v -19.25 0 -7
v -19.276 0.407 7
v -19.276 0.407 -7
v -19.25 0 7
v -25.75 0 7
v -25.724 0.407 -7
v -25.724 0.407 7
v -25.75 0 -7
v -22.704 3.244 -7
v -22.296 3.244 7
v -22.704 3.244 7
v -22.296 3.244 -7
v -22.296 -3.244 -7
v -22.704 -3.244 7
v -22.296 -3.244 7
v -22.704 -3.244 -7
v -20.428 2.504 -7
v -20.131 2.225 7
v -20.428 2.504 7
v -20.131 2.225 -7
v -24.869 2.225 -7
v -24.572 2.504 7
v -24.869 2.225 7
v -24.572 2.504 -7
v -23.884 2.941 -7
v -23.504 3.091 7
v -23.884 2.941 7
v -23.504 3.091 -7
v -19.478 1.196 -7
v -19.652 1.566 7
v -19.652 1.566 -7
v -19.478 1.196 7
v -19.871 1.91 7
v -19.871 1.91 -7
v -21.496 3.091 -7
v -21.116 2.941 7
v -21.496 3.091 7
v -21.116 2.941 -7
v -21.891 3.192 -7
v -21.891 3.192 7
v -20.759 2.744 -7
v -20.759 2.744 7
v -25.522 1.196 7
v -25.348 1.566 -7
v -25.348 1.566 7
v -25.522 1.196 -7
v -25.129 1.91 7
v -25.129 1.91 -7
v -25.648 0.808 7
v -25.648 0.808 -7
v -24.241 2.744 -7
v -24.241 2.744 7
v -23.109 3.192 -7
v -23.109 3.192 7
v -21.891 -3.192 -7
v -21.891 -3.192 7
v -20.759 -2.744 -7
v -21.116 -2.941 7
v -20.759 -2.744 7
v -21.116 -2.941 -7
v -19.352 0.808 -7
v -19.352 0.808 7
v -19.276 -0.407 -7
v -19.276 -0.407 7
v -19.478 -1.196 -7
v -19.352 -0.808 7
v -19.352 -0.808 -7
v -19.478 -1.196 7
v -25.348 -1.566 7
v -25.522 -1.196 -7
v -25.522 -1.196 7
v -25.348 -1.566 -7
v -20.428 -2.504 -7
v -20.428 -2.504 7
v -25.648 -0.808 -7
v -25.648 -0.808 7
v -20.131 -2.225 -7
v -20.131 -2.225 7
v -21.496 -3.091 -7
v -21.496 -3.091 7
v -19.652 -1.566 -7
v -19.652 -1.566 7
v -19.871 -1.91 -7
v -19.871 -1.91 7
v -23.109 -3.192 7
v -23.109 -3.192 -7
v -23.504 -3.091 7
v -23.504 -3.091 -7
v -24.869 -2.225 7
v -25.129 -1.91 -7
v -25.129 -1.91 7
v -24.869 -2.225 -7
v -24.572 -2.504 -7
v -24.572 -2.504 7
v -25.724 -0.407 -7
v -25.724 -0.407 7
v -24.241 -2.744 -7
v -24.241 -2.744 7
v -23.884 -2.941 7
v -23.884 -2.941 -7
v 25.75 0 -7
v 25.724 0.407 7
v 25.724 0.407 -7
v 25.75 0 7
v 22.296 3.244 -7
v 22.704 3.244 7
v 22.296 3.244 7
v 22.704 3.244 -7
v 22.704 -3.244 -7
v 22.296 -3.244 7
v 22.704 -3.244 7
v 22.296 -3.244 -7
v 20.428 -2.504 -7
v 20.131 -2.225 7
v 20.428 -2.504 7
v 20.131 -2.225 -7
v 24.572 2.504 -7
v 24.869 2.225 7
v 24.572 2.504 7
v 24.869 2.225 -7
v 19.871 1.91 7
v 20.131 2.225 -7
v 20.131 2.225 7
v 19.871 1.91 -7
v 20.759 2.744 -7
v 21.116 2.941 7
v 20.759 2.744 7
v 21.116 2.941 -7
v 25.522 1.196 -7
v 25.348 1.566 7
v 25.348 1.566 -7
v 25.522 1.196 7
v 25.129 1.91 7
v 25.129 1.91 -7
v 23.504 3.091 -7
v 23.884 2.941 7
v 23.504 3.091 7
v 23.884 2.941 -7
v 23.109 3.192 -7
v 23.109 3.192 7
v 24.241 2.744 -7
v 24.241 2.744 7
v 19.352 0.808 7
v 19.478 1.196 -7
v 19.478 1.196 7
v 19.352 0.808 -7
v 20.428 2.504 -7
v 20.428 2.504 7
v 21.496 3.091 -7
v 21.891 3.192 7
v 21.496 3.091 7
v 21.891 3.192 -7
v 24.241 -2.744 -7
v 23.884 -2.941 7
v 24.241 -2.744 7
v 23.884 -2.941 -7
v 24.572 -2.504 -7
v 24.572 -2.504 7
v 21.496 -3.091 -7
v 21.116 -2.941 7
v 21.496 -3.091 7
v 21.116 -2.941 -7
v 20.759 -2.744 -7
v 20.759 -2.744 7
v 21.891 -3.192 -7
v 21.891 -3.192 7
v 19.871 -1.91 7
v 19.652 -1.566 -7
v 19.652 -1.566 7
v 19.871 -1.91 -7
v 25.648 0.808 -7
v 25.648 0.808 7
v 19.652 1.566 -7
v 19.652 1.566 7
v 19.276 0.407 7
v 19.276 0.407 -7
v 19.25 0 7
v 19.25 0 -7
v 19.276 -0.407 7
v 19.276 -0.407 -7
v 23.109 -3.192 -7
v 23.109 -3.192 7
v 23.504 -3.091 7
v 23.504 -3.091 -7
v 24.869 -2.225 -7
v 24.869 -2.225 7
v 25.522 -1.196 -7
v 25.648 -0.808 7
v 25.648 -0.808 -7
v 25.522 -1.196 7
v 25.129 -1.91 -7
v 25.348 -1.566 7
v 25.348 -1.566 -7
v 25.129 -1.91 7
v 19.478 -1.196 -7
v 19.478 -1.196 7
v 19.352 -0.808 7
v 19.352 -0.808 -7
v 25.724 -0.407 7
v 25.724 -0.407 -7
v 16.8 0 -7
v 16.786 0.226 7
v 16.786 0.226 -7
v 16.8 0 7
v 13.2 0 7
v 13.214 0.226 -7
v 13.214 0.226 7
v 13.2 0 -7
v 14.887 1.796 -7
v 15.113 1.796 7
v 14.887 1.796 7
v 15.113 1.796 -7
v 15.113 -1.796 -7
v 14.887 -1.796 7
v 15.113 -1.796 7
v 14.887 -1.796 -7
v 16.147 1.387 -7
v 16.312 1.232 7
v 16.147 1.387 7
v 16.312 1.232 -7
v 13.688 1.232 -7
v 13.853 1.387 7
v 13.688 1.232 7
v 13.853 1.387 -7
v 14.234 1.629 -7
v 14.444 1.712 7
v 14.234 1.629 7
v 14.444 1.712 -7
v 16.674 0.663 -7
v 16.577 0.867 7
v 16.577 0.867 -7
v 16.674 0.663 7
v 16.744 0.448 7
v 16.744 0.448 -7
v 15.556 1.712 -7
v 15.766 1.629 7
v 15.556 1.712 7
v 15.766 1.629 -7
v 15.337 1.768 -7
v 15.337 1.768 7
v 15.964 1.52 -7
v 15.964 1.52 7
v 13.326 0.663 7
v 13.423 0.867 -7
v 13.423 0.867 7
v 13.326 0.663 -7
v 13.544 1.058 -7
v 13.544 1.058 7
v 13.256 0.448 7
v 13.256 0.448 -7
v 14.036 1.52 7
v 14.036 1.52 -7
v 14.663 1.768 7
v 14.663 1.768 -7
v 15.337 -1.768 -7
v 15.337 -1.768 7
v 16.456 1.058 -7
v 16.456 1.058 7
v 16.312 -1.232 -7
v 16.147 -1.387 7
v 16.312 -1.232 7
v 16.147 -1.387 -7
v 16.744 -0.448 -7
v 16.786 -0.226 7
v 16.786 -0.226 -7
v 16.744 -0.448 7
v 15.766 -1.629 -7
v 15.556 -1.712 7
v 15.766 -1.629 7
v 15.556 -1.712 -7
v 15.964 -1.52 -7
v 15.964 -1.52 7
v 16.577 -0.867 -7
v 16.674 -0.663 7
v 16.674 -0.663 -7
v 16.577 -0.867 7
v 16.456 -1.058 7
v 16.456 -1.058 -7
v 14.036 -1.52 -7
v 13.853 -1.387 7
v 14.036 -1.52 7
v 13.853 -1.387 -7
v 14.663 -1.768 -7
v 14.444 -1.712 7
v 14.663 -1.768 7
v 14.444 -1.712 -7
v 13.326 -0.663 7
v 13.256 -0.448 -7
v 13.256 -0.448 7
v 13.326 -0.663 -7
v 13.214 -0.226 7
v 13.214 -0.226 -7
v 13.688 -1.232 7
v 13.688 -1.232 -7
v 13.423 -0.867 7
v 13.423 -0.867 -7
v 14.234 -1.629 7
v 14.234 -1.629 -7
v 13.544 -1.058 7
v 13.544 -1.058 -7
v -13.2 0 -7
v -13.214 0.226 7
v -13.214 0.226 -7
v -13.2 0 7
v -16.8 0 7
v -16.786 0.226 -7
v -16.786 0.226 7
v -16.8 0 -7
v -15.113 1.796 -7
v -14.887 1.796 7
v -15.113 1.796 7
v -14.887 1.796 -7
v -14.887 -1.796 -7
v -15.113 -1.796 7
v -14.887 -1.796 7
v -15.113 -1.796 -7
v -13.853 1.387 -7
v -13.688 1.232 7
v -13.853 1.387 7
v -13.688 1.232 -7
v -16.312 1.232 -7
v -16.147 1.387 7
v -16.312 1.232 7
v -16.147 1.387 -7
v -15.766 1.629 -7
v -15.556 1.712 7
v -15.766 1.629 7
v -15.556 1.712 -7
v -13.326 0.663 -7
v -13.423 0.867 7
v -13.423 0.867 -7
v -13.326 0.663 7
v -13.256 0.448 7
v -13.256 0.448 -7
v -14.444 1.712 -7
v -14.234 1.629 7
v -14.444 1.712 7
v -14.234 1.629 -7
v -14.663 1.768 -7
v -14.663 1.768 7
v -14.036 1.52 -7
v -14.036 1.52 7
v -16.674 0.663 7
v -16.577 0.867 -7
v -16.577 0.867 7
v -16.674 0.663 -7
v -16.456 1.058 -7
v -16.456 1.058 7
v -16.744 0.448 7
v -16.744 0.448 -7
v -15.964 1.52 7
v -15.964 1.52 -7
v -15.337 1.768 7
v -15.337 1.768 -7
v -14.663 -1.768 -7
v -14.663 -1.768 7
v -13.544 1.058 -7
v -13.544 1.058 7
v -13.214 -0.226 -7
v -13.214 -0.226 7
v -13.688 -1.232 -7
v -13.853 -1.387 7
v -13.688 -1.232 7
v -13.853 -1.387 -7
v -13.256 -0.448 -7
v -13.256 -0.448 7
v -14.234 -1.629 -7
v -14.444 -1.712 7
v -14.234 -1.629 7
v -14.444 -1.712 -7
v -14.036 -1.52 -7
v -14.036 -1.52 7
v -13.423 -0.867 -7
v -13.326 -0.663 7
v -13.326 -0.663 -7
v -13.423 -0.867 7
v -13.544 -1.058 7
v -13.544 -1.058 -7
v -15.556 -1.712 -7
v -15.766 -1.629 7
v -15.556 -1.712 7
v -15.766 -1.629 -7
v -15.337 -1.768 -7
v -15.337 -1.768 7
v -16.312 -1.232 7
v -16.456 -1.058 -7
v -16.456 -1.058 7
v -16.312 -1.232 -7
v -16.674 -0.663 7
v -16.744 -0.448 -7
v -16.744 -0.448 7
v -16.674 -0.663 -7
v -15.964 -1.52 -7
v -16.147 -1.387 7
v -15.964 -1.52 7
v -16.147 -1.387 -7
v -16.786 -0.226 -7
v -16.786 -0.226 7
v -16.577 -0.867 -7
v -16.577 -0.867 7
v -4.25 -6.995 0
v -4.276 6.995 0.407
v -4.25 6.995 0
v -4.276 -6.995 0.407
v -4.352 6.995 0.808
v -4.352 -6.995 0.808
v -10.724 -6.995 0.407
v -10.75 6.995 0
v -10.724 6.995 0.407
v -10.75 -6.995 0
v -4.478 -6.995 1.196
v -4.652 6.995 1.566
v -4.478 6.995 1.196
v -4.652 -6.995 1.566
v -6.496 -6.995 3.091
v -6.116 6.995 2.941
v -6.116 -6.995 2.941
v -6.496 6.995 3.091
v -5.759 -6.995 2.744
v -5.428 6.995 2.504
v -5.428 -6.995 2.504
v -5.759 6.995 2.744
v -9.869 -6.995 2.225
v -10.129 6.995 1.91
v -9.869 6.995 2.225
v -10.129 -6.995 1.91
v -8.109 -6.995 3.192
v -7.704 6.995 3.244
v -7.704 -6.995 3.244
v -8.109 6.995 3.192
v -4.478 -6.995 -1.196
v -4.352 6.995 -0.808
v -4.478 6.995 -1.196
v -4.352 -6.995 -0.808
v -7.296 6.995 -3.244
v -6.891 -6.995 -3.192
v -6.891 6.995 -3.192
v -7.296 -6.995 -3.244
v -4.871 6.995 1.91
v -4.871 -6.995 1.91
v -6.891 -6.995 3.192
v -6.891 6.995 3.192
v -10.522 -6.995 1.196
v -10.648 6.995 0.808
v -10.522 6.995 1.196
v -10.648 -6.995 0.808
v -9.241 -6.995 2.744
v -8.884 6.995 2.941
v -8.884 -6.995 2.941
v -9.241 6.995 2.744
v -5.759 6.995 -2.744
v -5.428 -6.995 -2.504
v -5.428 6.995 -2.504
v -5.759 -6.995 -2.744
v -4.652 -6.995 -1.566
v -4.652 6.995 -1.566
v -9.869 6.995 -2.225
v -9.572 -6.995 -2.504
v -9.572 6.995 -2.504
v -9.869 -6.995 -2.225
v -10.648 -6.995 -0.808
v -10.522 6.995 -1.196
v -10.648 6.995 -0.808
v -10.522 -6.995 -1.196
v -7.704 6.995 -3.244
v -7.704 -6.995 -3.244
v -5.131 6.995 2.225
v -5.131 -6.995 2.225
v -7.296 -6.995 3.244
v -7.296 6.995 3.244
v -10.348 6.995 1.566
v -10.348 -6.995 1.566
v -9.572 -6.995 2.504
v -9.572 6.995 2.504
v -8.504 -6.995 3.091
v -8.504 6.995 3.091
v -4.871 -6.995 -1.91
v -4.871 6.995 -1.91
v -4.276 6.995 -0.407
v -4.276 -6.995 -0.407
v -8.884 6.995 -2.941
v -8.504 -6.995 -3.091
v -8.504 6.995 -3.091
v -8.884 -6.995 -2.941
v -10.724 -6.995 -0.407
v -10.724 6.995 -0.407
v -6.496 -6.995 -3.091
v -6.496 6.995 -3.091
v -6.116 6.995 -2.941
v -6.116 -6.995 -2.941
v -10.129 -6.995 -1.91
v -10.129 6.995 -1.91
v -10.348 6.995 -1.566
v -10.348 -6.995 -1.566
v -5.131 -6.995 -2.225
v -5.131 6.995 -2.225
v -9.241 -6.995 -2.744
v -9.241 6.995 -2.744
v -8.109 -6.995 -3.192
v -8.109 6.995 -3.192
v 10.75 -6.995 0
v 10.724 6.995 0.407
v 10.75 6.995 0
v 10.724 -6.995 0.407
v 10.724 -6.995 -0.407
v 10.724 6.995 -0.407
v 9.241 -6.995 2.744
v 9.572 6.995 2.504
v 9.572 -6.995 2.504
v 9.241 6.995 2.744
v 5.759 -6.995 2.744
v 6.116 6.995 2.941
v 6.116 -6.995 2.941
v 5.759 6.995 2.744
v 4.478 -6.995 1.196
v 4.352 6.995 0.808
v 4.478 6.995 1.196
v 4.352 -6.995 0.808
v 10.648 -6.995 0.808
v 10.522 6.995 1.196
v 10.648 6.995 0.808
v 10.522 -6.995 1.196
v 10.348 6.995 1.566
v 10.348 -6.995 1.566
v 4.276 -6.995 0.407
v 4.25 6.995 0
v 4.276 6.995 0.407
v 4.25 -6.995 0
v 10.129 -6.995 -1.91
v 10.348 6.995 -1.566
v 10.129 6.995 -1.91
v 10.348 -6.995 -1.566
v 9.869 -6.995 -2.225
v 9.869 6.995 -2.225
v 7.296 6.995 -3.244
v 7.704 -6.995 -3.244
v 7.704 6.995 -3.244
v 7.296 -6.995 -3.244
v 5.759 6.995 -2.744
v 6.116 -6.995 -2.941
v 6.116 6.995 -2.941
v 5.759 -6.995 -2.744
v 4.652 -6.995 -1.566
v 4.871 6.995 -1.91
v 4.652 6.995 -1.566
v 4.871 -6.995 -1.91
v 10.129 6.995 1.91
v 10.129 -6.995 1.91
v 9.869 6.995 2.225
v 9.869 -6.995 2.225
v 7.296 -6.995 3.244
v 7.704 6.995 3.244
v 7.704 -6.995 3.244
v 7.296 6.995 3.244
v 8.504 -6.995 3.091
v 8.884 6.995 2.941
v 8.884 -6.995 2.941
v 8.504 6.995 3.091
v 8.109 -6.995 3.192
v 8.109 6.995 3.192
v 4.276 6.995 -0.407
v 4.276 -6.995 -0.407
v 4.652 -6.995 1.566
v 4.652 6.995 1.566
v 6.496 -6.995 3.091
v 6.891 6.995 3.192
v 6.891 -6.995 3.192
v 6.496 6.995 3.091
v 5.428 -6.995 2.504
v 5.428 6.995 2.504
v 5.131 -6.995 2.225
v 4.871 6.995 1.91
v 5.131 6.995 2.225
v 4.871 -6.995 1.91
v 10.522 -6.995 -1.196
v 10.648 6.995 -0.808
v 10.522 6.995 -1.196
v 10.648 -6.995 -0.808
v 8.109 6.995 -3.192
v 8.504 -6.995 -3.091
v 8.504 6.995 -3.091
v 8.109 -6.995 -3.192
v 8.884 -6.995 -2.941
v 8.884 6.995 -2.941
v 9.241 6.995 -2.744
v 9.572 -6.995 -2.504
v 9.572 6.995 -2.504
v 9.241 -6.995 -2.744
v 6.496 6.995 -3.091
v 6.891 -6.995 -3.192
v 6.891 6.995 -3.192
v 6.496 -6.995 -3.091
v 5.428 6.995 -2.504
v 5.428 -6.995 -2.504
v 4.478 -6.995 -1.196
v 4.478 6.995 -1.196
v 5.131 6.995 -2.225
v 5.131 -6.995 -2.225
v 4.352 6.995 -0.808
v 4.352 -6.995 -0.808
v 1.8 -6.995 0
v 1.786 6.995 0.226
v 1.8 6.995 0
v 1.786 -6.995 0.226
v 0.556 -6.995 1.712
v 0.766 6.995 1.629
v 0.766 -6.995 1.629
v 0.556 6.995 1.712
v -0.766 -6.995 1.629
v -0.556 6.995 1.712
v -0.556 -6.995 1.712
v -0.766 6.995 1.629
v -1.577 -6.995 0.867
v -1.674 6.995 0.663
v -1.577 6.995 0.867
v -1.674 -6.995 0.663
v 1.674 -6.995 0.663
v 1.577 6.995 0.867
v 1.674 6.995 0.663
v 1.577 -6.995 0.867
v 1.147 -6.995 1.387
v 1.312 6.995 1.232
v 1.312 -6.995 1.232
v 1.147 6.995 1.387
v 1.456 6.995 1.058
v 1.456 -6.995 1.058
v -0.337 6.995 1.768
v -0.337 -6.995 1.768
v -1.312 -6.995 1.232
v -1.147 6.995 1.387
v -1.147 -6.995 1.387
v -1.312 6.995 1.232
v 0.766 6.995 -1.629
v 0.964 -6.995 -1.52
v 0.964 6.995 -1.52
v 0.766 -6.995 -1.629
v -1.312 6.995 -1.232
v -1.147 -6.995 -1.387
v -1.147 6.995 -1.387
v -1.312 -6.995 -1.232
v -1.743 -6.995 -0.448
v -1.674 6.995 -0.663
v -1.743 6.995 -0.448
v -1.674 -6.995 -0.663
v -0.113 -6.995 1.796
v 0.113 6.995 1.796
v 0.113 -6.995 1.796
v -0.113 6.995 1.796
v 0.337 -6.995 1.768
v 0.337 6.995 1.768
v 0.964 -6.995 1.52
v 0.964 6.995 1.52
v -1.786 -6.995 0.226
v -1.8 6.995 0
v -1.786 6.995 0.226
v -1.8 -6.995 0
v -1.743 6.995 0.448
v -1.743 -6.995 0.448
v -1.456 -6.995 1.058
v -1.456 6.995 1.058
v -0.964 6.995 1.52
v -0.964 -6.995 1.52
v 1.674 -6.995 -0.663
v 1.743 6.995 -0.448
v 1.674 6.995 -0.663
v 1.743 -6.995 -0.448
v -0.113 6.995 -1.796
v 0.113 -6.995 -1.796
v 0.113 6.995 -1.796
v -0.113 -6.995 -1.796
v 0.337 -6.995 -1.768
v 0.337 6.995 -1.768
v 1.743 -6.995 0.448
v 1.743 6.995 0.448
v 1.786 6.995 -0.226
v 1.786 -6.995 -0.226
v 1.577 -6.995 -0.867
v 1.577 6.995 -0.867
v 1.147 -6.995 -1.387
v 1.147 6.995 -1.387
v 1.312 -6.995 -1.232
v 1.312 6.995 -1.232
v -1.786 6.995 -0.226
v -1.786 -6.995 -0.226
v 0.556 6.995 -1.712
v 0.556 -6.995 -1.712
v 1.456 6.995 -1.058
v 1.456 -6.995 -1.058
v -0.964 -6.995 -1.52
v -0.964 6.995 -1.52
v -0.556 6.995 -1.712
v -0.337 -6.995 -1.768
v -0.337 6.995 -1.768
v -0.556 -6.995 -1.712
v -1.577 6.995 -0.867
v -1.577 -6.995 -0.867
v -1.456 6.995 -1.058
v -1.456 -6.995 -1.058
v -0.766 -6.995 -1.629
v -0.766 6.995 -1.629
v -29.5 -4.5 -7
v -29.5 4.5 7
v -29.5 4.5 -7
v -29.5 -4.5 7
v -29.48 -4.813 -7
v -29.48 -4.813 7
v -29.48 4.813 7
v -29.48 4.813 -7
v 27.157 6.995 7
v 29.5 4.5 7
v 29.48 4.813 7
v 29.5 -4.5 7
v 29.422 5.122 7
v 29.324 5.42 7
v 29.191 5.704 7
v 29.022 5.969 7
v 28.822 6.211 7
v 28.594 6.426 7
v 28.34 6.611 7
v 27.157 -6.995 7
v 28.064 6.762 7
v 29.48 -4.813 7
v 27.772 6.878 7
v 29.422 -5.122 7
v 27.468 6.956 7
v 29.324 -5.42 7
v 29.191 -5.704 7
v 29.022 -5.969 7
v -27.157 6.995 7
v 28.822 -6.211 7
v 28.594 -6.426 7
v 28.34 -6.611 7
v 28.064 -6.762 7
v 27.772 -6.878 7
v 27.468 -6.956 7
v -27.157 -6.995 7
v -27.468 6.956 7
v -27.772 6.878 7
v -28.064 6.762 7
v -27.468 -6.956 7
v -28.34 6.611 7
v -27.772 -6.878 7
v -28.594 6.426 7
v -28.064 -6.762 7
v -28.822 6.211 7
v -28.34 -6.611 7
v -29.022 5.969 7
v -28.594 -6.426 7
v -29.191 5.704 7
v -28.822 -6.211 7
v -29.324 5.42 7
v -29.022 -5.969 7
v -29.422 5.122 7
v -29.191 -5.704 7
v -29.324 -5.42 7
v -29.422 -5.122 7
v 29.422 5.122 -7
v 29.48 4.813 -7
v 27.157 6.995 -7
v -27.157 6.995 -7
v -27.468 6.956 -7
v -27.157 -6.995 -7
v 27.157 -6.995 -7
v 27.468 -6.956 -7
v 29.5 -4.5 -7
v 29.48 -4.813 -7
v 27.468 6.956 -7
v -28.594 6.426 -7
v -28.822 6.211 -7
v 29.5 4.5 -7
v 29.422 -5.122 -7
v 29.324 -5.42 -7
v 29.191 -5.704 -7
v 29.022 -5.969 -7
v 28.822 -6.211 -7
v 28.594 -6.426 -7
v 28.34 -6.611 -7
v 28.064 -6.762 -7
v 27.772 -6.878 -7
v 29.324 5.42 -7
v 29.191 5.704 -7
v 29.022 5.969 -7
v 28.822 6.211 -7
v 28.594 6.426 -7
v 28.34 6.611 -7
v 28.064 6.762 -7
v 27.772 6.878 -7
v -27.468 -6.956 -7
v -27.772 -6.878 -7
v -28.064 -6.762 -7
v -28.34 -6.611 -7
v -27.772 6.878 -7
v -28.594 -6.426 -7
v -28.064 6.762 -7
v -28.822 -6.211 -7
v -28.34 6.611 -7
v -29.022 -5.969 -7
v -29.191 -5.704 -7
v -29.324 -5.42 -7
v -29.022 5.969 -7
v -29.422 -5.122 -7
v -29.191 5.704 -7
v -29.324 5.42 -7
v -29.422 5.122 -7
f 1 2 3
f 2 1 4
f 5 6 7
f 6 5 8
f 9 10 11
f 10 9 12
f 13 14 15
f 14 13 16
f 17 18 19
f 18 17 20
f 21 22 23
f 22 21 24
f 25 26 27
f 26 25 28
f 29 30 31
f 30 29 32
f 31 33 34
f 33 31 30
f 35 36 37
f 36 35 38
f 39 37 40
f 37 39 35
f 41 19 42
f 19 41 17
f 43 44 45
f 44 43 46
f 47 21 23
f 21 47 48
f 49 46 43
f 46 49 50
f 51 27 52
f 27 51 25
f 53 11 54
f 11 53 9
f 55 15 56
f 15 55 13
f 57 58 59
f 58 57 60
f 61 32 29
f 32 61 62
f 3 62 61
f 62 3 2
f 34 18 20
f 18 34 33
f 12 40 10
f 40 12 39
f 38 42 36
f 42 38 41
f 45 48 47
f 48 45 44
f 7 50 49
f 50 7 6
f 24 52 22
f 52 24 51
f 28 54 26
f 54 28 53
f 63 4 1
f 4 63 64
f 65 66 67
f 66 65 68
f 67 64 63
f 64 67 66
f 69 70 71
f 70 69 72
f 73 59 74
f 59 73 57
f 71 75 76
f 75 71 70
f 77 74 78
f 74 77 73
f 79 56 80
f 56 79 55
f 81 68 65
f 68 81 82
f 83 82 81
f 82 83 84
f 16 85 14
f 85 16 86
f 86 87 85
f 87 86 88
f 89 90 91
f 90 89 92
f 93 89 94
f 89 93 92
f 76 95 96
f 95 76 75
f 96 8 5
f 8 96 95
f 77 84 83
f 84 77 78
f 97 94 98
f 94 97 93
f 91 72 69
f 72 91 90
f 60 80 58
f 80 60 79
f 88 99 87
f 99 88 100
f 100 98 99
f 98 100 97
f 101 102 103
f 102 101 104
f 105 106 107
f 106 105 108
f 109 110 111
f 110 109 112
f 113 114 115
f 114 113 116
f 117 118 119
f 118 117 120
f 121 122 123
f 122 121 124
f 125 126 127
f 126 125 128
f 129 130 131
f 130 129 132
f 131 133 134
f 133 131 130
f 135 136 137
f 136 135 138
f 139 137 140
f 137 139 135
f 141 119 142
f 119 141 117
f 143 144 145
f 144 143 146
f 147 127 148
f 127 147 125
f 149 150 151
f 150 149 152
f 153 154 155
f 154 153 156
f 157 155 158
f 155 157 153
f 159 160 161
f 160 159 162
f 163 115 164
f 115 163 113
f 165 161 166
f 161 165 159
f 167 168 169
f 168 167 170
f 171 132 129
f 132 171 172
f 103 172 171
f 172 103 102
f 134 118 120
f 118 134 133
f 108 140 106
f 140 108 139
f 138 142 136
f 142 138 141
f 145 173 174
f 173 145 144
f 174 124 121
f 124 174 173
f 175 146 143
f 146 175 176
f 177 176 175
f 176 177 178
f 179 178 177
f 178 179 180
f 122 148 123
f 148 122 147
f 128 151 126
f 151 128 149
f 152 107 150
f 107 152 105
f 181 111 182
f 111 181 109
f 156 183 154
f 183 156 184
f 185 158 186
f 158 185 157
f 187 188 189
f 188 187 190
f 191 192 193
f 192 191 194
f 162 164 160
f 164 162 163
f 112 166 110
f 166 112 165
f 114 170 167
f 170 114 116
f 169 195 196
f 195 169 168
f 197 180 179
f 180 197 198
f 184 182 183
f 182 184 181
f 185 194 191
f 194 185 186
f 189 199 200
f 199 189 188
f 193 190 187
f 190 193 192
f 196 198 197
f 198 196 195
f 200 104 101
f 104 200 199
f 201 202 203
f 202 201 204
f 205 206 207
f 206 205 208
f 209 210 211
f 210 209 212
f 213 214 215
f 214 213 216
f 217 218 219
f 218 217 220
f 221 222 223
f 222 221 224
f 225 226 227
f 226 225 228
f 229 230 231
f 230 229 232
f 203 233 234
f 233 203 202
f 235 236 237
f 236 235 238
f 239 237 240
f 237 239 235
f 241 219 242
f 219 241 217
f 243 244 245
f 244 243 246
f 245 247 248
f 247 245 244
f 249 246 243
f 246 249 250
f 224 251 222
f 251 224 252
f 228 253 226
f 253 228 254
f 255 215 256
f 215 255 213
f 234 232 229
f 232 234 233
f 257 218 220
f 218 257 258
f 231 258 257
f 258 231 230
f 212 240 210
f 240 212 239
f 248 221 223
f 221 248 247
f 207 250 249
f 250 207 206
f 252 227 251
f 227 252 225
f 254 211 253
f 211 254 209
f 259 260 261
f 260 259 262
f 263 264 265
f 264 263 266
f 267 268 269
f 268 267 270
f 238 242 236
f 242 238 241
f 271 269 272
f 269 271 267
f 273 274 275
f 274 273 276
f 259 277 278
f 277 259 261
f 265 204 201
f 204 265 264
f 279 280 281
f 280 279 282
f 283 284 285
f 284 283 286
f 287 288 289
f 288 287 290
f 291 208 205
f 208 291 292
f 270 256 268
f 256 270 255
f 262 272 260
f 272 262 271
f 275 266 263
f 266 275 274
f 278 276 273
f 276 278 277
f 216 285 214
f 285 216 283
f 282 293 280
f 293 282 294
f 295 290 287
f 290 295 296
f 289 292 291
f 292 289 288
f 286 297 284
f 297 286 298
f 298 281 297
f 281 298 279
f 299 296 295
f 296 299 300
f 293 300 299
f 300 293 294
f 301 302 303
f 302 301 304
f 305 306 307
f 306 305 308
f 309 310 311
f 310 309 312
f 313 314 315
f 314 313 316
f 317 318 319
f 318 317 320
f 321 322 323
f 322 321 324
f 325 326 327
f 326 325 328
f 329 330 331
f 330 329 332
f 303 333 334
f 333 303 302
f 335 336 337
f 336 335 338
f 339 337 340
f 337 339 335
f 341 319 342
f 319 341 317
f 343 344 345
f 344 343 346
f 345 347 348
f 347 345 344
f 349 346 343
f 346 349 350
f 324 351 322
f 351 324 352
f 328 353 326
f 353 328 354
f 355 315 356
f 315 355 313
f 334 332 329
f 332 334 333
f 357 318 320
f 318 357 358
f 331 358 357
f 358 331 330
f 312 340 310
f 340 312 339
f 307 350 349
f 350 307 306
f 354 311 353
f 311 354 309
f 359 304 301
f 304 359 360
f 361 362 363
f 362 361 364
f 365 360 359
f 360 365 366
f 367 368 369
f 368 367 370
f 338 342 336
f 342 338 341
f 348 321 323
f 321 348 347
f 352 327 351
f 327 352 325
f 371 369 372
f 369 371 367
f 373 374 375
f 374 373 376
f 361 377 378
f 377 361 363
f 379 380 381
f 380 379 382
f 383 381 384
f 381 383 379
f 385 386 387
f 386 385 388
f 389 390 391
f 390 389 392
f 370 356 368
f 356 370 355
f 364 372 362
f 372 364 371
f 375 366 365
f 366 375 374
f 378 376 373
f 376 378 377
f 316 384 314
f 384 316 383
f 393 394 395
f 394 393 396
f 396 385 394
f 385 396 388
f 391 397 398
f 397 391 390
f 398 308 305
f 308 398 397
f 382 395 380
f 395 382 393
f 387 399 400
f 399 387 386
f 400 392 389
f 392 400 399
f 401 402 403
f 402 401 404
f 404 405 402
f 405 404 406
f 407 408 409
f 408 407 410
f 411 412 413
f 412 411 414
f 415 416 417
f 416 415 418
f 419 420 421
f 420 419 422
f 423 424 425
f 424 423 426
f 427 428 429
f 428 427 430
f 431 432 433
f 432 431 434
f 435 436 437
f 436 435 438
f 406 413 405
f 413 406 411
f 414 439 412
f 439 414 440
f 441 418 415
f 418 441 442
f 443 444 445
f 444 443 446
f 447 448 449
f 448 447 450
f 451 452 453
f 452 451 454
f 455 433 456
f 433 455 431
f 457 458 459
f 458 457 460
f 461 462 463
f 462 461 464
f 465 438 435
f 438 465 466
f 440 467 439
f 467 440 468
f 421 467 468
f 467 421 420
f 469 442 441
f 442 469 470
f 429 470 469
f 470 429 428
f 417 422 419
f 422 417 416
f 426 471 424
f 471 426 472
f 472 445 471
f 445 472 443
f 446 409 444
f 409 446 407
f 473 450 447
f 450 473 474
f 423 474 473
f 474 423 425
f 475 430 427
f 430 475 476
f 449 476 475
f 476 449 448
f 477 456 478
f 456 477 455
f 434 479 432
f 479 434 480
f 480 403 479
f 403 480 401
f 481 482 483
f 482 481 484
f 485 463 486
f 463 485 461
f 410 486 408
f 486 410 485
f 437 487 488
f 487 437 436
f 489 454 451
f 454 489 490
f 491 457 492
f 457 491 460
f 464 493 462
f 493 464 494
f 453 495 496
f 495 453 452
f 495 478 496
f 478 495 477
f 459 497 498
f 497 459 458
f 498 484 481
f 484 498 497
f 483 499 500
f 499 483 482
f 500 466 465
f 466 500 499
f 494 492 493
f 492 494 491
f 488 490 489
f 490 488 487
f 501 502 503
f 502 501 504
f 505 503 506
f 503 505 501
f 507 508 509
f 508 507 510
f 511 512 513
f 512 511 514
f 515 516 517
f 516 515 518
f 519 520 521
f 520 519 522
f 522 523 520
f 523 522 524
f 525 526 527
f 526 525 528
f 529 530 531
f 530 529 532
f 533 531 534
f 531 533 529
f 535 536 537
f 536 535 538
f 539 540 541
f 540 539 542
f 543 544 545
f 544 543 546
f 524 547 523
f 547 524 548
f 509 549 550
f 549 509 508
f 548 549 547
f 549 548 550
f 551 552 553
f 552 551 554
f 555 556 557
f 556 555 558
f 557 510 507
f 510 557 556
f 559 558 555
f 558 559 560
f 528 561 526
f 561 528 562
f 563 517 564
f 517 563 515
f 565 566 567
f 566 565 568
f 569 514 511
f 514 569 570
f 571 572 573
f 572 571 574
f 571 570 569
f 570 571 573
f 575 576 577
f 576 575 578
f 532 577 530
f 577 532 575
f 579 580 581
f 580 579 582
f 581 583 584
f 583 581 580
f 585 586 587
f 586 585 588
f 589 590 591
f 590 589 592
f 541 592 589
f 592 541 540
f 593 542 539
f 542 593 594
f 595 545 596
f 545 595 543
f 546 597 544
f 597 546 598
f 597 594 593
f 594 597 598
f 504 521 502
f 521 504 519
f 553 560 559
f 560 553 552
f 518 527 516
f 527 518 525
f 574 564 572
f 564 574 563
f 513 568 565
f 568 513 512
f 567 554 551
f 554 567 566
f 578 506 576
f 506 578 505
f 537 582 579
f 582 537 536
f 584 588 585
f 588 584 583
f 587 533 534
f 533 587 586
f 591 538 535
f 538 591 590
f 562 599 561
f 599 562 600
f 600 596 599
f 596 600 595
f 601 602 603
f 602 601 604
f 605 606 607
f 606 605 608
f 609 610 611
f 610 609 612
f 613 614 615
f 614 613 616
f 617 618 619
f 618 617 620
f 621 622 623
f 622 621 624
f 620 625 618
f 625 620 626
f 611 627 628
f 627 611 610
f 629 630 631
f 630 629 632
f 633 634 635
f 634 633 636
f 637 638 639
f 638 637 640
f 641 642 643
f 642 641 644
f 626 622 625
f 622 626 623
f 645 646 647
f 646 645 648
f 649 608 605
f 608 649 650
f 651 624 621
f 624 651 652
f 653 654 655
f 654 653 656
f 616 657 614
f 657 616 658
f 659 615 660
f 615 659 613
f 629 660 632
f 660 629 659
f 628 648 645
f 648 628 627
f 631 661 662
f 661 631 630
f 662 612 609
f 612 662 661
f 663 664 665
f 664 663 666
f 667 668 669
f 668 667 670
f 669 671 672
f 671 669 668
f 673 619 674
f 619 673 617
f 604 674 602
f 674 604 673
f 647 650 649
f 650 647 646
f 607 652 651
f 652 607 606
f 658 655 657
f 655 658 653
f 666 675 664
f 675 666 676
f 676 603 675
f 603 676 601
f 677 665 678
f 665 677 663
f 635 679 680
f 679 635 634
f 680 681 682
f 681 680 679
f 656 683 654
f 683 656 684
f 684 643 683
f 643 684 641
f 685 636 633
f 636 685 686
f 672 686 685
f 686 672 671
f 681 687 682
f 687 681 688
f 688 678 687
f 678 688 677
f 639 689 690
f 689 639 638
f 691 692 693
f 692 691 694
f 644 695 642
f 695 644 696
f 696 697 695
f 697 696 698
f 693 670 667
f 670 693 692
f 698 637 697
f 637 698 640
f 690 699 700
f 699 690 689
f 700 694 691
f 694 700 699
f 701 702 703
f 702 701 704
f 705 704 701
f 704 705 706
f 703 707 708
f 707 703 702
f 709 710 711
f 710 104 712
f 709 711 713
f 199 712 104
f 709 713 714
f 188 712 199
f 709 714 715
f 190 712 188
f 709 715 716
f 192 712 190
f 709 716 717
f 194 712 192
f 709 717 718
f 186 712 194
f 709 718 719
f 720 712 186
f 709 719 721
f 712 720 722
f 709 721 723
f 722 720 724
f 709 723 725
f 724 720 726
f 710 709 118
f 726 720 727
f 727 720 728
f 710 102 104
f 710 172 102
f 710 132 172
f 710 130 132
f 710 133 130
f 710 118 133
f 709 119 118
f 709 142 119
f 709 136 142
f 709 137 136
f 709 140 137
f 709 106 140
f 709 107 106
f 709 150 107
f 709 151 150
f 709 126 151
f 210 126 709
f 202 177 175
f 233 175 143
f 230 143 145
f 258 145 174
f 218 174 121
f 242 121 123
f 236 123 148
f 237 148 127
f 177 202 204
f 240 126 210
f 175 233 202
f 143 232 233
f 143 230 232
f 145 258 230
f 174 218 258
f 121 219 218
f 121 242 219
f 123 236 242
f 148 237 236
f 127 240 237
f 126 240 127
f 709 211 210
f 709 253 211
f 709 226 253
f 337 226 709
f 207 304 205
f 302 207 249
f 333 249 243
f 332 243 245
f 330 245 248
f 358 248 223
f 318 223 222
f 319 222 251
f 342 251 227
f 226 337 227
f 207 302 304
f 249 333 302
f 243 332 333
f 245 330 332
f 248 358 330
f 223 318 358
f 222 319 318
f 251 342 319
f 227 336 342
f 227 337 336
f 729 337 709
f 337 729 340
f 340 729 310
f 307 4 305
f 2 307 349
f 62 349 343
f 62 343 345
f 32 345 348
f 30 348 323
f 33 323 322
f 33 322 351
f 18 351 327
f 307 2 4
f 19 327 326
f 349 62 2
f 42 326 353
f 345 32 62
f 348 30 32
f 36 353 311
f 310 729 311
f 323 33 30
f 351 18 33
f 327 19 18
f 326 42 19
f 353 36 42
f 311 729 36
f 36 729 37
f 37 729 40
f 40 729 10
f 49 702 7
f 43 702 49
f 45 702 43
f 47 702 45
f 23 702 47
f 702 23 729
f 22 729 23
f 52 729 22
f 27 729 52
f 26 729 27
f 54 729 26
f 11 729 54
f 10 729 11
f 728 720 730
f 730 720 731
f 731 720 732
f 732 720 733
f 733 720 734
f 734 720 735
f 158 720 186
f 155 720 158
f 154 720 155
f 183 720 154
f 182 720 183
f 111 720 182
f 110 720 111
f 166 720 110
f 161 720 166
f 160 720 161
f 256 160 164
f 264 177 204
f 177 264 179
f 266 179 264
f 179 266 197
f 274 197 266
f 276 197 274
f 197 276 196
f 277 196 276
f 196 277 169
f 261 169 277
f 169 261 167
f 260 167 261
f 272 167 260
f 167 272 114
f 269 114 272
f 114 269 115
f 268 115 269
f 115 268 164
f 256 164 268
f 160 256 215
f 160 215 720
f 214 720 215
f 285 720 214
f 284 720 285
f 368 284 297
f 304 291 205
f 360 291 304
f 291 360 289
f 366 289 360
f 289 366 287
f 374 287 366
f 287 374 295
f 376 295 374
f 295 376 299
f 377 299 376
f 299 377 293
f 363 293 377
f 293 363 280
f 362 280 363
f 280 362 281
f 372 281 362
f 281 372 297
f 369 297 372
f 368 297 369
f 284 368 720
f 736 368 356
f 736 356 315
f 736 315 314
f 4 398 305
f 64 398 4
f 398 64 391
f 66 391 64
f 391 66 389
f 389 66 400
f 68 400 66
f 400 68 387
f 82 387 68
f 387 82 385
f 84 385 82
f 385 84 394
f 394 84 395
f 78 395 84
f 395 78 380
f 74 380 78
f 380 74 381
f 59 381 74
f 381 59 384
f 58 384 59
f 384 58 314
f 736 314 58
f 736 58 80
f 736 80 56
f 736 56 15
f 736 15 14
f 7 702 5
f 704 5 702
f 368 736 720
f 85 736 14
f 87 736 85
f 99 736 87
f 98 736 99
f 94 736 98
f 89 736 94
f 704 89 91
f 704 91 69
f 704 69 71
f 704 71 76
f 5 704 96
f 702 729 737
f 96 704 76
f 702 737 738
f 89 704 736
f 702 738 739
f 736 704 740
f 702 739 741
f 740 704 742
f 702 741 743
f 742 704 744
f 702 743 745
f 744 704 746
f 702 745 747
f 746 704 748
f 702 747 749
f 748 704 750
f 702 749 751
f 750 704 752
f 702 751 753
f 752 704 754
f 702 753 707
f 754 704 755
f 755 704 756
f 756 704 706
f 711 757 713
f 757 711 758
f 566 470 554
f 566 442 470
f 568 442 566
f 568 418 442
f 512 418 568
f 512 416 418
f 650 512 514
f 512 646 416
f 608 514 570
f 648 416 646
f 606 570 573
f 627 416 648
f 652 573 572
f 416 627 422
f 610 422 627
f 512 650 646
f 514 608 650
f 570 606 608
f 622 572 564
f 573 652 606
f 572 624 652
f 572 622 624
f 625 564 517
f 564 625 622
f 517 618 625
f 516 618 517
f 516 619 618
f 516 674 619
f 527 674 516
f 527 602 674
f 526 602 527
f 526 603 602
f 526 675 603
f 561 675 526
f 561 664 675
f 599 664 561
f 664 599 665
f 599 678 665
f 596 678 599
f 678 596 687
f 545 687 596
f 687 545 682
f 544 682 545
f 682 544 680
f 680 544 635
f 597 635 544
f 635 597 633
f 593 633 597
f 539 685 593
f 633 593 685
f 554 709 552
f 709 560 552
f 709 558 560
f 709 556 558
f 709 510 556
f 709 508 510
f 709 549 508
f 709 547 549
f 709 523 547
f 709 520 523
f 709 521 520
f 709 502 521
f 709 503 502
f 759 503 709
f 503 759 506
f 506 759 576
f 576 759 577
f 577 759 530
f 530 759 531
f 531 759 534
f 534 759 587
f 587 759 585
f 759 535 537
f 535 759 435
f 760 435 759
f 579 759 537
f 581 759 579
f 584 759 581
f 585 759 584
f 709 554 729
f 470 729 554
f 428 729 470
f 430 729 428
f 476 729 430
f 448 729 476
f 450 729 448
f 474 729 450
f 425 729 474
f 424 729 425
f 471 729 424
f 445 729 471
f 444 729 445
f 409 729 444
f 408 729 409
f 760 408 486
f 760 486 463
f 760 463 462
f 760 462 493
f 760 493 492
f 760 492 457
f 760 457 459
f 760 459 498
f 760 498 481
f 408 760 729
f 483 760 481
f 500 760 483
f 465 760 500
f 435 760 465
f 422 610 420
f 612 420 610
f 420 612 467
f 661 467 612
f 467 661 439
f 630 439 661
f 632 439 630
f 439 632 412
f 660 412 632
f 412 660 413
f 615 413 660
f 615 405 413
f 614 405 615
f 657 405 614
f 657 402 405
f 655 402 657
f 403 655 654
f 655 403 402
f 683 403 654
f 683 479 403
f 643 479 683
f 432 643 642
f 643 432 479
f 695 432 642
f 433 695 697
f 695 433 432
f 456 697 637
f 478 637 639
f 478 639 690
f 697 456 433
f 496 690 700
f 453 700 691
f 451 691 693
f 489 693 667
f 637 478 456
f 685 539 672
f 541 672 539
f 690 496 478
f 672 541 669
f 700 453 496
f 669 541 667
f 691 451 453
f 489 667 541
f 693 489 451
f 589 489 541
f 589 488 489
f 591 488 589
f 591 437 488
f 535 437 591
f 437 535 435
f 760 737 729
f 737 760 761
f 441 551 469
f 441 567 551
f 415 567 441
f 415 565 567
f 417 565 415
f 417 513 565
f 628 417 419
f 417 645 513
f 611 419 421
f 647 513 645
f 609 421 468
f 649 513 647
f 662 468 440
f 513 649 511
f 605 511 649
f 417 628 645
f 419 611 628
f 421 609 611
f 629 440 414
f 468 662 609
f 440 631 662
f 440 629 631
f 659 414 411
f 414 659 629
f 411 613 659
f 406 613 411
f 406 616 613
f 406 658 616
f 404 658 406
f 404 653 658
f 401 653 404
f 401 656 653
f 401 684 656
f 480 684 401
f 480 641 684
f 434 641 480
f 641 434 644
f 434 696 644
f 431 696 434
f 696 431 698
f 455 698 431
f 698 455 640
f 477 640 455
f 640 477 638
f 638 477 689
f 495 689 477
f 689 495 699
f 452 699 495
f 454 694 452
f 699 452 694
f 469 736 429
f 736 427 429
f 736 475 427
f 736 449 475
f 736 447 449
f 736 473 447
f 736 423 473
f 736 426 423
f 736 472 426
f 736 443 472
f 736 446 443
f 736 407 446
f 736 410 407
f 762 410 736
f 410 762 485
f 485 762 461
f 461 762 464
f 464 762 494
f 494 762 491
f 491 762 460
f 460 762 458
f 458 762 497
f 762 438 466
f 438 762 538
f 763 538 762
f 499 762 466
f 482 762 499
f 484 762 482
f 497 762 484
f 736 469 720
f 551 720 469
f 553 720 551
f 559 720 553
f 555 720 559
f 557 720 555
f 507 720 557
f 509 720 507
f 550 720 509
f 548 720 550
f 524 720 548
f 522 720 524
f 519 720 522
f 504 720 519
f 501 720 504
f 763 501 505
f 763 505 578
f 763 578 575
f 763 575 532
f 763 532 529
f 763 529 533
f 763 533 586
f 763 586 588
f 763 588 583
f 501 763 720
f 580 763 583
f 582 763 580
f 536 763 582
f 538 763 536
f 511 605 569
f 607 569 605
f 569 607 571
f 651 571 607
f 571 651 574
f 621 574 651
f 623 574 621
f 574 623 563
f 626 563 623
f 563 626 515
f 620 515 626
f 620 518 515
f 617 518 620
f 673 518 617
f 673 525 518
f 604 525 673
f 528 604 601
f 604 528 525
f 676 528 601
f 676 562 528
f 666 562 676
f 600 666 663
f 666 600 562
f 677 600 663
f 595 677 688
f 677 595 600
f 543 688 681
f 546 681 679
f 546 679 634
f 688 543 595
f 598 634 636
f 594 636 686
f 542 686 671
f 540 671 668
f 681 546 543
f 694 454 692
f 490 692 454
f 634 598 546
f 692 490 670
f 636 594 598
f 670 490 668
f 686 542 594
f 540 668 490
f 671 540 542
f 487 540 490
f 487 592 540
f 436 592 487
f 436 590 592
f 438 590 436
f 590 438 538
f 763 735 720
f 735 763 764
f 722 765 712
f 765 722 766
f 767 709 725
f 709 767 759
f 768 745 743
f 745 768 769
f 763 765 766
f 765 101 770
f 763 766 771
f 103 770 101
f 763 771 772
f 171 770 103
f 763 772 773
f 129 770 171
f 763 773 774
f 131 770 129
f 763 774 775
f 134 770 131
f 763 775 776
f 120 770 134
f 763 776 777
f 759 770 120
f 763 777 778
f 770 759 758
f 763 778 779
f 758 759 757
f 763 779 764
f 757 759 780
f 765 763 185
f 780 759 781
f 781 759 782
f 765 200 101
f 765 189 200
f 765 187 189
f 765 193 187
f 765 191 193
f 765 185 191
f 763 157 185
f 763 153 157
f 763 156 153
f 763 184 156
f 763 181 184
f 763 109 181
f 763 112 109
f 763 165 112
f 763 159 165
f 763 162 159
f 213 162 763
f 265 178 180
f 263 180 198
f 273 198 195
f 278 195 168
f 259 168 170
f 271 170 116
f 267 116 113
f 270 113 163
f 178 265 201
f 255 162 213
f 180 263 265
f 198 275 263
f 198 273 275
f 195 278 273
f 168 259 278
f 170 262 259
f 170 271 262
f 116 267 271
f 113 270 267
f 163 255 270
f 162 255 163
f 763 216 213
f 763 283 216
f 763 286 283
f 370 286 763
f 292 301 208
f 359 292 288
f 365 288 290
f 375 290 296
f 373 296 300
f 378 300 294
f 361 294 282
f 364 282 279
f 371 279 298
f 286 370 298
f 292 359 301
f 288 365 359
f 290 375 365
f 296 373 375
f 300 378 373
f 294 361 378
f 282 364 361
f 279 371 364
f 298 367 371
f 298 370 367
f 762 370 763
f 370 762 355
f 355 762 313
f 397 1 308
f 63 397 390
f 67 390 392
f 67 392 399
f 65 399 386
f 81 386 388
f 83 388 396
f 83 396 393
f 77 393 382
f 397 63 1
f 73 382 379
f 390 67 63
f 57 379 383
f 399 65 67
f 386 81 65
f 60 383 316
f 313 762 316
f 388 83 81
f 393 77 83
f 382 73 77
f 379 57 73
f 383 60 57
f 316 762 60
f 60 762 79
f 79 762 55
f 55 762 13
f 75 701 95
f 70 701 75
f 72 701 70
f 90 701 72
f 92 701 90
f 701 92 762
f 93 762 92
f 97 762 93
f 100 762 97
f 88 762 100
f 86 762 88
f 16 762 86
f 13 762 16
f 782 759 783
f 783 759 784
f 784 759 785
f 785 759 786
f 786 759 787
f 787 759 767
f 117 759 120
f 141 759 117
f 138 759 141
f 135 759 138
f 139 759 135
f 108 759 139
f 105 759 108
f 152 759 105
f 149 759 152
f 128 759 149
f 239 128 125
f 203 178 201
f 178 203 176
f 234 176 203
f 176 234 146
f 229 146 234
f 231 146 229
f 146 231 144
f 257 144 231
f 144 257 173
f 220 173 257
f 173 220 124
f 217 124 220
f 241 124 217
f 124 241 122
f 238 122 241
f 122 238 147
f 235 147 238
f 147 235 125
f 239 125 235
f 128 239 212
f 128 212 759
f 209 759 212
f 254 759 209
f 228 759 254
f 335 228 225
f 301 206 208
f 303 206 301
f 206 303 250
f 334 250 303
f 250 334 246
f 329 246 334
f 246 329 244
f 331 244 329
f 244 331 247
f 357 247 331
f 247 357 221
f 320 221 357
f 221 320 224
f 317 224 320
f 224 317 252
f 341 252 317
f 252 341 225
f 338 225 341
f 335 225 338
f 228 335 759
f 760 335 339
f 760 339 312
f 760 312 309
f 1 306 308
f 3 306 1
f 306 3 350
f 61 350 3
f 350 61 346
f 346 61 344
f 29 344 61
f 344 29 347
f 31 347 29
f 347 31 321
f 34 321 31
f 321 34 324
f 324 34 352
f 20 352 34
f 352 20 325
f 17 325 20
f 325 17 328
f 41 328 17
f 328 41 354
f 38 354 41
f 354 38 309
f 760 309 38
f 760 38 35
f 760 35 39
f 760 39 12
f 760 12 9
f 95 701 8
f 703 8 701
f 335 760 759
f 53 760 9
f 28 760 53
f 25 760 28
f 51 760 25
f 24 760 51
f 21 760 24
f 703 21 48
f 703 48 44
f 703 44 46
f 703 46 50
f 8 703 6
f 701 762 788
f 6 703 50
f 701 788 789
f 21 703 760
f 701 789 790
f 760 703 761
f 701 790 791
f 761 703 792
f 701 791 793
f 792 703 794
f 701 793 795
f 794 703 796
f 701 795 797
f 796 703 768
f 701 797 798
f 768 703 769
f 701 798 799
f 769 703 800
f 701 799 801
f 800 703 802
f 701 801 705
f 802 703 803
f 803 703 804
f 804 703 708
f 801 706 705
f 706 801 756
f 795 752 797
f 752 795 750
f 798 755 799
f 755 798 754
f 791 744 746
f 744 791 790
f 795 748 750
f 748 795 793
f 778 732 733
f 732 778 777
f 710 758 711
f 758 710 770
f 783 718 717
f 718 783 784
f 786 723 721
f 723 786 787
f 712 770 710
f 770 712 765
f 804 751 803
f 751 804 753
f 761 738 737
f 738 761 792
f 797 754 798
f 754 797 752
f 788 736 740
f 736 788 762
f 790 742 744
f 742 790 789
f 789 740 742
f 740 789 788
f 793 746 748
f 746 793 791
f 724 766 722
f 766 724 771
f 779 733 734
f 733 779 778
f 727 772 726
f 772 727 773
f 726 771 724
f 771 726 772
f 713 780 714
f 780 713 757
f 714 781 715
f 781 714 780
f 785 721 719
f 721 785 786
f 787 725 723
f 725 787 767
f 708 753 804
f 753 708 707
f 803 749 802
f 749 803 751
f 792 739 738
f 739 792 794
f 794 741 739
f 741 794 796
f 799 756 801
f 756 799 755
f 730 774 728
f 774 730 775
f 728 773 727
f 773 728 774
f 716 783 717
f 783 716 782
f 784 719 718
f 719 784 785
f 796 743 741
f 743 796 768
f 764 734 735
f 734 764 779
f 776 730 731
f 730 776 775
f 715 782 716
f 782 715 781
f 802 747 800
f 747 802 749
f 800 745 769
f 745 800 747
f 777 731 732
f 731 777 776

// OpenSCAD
$fn = 50;


difference() {
	union() {
		*color(alpha = 1.0000000000, c = "gray") {
			translate(v = [0, 7, 0]) {
				linear_extrude(height = 1) {
					text(font = "Arial:style=Bold", halign = "center", size = 4.5000000000, text = "COMMENT plate main", valign = "center");
				}
			}
		}
		*color(alpha = 1.0000000000, c = "gray") {
			translate(v = [0, 14, -7.0000000000]) {
				linear_extrude(height = 1) {
					text(font = "Arial:style=Bold", halign = "center", size = 4.5000000000, text = "COMMENT description oobb_plate_shape_p_type_14_depth_0_0_-7.0_pos_4_width_1_height_14_thickness_ninety_degree_extra_2.5_r", valign = "center");
				}
			}
		}
		translate(v = [0, 0, -7.0000000000]) {
			hull() {
				translate(v = [-27.0000000000, 4.5000000000, 0]) {
					cylinder(h = 14, r = 2.5000000000);
				}
				translate(v = [27.0000000000, 4.5000000000, 0]) {
					cylinder(h = 14, r = 2.5000000000);
				}
				translate(v = [-27.0000000000, -4.5000000000, 0]) {
					cylinder(h = 14, r = 2.5000000000);
				}
				translate(v = [27.0000000000, -4.5000000000, 0]) {
					cylinder(h = 14, r = 2.5000000000);
				}
			}
		}
	}
	union() {
		*color(alpha = 1.0000000000, c = "gray") {
			translate(v = [0, 7, 0]) {
				linear_extrude(height = 1) {
					text(font = "Arial:style=Bold", halign = "center", size = 4.5000000000, text = "COMMENT holes main", valign = "center");
				}
			}
		}
		*color(alpha = 1.0000000000, c = "gray") {
			translate(v = [0, 14, 0]) {
				linear_extrude(height = 1) {
					text(font = "Arial:style=Bold", halign = "center", size = 4.5000000000, text = "COMMENT description oobb_holes_shape_n_type_m6_radius_name_4_width_1_height_14_thickness_ninety_degree_extra_true_both_holes_single_holes_1_1_4_1_loc", valign = "center");
				}
			}
		}
		translate(v = [-22.5000000000, 0.0000000000, -50.0000000000]) {
			cylinder(h = 100, r = 3.2500000000);
		}
		translate(v = [22.5000000000, 0.0000000000, -50.0000000000]) {
			cylinder(h = 100, r = 3.2500000000);
		}
		*color(alpha = 1.0000000000, c = "gray") {
			translate(v = [0, 14, 0]) {
				linear_extrude(height = 1) {
					text(font = "Arial:style=Bold", halign = "center", size = 4.5000000000, text = "COMMENT description oobb_holes_shape_n_type_m3_radius_name_4_width_1_height_14_thickness_ninety_degree_extra_true_both_holes_single_holes_3.5_1_1.5_1_loc", valign = "center");
				}
			}
		}
		translate(v = [15.0000000000, 0.0000000000, -50.0000000000]) {
			cylinder(h = 100, r = 1.8000000000);
		}
		translate(v = [-15.0000000000, 0.0000000000, -50.0000000000]) {
			cylinder(h = 100, r = 1.8000000000);
		}
		*color(alpha = 1.0000000000, c = "gray") {
			translate(v = [0, 7, 0]) {
				linear_extrude(height = 1) {
					text(font = "Arial:style=Bold", halign = "center", size = 4.5000000000, text = "COMMENT holes main", valign = "center");
				}
			}
		}
		*color(alpha = 1.0000000000, c = "gray") {
			translate(v = [-7.5000000000, 21.0000000000, 0]) {
				rotate(a = [90, 0, 0]) {
					linear_extrude(height = 1) {
						text(font = "Arial:style=Bold", halign = "center", size = 4.5000000000, text = "COMMENT description oobb_hole_shape_n_type_m6_radius_name_14_depth_-7.5_7.0_0_pos_4_width_1_height_14_thickness_ninety_degree_extra_90_0_0_rot", valign = "center");
					}
				}
			}
		}
		translate(v = [-7.5000000000, 7.0000000000, 0]) {
			rotate(a = [90, 0, 0]) {
				cylinder(h = 14, r = 3.2500000000);
			}
		}
		*color(alpha = 1.0000000000, c = "gray") {
			translate(v = [0, 7, 0]) {
				linear_extrude(height = 1) {
					text(font = "Arial:style=Bold", halign = "center", size = 4.5000000000, text = "COMMENT holes main", valign = "center");
				}
			}
		}
		*color(alpha = 1.0000000000, c = "gray") {
			translate(v = [7.5000000000, 21.0000000000, 0]) {
				rotate(a = [90, 0, 0]) {
					linear_extrude(height = 1) {
						text(font = "Arial:style=Bold", halign = "center", size = 4.5000000000, text = "COMMENT description oobb_hole_shape_n_type_m6_radius_name_14_depth_7.5_7.0_0_pos_4_width_1_height_14_thickness_ninety_degree_extra_90_0_0_rot", valign = "center");
					}
				}
			}
		}
		translate(v = [7.5000000000, 7.0000000000, 0]) {
			rotate(a = [90, 0, 0]) {
				cylinder(h = 14, r = 3.2500000000);
			}
		}
		*color(alpha = 1.0000000000, c = "gray") {
			translate(v = [0, 7, 0]) {
				linear_extrude(height = 1) {
					text(font = "Arial:style=Bold", halign = "center", size = 4.5000000000, text = "COMMENT holes main", valign = "center");
				}
			}
		}
		*color(alpha = 1.0000000000, c = "gray") {
			translate(v = [0.0000000000, 21.0000000000, 0]) {
				rotate(a = [90, 0, 0]) {
					linear_extrude(height = 1) {
						text(font = "Arial:style=Bold", halign = "center", size = 4.5000000000, text = "COMMENT description oobb_hole_shape_n_type_m3_radius_name_14_depth_0.0_7.0_0_pos_4_width_1_height_14_thickness_ninety_degree_extra_90_0_0_rot", valign = "center");
					}
				}
			}
		}
		translate(v = [0.0000000000, 7.0000000000, 0]) {
			rotate(a = [90, 0, 0]) {
				cylinder(h = 14, r = 1.8000000000);
			}
		}
	}
}
